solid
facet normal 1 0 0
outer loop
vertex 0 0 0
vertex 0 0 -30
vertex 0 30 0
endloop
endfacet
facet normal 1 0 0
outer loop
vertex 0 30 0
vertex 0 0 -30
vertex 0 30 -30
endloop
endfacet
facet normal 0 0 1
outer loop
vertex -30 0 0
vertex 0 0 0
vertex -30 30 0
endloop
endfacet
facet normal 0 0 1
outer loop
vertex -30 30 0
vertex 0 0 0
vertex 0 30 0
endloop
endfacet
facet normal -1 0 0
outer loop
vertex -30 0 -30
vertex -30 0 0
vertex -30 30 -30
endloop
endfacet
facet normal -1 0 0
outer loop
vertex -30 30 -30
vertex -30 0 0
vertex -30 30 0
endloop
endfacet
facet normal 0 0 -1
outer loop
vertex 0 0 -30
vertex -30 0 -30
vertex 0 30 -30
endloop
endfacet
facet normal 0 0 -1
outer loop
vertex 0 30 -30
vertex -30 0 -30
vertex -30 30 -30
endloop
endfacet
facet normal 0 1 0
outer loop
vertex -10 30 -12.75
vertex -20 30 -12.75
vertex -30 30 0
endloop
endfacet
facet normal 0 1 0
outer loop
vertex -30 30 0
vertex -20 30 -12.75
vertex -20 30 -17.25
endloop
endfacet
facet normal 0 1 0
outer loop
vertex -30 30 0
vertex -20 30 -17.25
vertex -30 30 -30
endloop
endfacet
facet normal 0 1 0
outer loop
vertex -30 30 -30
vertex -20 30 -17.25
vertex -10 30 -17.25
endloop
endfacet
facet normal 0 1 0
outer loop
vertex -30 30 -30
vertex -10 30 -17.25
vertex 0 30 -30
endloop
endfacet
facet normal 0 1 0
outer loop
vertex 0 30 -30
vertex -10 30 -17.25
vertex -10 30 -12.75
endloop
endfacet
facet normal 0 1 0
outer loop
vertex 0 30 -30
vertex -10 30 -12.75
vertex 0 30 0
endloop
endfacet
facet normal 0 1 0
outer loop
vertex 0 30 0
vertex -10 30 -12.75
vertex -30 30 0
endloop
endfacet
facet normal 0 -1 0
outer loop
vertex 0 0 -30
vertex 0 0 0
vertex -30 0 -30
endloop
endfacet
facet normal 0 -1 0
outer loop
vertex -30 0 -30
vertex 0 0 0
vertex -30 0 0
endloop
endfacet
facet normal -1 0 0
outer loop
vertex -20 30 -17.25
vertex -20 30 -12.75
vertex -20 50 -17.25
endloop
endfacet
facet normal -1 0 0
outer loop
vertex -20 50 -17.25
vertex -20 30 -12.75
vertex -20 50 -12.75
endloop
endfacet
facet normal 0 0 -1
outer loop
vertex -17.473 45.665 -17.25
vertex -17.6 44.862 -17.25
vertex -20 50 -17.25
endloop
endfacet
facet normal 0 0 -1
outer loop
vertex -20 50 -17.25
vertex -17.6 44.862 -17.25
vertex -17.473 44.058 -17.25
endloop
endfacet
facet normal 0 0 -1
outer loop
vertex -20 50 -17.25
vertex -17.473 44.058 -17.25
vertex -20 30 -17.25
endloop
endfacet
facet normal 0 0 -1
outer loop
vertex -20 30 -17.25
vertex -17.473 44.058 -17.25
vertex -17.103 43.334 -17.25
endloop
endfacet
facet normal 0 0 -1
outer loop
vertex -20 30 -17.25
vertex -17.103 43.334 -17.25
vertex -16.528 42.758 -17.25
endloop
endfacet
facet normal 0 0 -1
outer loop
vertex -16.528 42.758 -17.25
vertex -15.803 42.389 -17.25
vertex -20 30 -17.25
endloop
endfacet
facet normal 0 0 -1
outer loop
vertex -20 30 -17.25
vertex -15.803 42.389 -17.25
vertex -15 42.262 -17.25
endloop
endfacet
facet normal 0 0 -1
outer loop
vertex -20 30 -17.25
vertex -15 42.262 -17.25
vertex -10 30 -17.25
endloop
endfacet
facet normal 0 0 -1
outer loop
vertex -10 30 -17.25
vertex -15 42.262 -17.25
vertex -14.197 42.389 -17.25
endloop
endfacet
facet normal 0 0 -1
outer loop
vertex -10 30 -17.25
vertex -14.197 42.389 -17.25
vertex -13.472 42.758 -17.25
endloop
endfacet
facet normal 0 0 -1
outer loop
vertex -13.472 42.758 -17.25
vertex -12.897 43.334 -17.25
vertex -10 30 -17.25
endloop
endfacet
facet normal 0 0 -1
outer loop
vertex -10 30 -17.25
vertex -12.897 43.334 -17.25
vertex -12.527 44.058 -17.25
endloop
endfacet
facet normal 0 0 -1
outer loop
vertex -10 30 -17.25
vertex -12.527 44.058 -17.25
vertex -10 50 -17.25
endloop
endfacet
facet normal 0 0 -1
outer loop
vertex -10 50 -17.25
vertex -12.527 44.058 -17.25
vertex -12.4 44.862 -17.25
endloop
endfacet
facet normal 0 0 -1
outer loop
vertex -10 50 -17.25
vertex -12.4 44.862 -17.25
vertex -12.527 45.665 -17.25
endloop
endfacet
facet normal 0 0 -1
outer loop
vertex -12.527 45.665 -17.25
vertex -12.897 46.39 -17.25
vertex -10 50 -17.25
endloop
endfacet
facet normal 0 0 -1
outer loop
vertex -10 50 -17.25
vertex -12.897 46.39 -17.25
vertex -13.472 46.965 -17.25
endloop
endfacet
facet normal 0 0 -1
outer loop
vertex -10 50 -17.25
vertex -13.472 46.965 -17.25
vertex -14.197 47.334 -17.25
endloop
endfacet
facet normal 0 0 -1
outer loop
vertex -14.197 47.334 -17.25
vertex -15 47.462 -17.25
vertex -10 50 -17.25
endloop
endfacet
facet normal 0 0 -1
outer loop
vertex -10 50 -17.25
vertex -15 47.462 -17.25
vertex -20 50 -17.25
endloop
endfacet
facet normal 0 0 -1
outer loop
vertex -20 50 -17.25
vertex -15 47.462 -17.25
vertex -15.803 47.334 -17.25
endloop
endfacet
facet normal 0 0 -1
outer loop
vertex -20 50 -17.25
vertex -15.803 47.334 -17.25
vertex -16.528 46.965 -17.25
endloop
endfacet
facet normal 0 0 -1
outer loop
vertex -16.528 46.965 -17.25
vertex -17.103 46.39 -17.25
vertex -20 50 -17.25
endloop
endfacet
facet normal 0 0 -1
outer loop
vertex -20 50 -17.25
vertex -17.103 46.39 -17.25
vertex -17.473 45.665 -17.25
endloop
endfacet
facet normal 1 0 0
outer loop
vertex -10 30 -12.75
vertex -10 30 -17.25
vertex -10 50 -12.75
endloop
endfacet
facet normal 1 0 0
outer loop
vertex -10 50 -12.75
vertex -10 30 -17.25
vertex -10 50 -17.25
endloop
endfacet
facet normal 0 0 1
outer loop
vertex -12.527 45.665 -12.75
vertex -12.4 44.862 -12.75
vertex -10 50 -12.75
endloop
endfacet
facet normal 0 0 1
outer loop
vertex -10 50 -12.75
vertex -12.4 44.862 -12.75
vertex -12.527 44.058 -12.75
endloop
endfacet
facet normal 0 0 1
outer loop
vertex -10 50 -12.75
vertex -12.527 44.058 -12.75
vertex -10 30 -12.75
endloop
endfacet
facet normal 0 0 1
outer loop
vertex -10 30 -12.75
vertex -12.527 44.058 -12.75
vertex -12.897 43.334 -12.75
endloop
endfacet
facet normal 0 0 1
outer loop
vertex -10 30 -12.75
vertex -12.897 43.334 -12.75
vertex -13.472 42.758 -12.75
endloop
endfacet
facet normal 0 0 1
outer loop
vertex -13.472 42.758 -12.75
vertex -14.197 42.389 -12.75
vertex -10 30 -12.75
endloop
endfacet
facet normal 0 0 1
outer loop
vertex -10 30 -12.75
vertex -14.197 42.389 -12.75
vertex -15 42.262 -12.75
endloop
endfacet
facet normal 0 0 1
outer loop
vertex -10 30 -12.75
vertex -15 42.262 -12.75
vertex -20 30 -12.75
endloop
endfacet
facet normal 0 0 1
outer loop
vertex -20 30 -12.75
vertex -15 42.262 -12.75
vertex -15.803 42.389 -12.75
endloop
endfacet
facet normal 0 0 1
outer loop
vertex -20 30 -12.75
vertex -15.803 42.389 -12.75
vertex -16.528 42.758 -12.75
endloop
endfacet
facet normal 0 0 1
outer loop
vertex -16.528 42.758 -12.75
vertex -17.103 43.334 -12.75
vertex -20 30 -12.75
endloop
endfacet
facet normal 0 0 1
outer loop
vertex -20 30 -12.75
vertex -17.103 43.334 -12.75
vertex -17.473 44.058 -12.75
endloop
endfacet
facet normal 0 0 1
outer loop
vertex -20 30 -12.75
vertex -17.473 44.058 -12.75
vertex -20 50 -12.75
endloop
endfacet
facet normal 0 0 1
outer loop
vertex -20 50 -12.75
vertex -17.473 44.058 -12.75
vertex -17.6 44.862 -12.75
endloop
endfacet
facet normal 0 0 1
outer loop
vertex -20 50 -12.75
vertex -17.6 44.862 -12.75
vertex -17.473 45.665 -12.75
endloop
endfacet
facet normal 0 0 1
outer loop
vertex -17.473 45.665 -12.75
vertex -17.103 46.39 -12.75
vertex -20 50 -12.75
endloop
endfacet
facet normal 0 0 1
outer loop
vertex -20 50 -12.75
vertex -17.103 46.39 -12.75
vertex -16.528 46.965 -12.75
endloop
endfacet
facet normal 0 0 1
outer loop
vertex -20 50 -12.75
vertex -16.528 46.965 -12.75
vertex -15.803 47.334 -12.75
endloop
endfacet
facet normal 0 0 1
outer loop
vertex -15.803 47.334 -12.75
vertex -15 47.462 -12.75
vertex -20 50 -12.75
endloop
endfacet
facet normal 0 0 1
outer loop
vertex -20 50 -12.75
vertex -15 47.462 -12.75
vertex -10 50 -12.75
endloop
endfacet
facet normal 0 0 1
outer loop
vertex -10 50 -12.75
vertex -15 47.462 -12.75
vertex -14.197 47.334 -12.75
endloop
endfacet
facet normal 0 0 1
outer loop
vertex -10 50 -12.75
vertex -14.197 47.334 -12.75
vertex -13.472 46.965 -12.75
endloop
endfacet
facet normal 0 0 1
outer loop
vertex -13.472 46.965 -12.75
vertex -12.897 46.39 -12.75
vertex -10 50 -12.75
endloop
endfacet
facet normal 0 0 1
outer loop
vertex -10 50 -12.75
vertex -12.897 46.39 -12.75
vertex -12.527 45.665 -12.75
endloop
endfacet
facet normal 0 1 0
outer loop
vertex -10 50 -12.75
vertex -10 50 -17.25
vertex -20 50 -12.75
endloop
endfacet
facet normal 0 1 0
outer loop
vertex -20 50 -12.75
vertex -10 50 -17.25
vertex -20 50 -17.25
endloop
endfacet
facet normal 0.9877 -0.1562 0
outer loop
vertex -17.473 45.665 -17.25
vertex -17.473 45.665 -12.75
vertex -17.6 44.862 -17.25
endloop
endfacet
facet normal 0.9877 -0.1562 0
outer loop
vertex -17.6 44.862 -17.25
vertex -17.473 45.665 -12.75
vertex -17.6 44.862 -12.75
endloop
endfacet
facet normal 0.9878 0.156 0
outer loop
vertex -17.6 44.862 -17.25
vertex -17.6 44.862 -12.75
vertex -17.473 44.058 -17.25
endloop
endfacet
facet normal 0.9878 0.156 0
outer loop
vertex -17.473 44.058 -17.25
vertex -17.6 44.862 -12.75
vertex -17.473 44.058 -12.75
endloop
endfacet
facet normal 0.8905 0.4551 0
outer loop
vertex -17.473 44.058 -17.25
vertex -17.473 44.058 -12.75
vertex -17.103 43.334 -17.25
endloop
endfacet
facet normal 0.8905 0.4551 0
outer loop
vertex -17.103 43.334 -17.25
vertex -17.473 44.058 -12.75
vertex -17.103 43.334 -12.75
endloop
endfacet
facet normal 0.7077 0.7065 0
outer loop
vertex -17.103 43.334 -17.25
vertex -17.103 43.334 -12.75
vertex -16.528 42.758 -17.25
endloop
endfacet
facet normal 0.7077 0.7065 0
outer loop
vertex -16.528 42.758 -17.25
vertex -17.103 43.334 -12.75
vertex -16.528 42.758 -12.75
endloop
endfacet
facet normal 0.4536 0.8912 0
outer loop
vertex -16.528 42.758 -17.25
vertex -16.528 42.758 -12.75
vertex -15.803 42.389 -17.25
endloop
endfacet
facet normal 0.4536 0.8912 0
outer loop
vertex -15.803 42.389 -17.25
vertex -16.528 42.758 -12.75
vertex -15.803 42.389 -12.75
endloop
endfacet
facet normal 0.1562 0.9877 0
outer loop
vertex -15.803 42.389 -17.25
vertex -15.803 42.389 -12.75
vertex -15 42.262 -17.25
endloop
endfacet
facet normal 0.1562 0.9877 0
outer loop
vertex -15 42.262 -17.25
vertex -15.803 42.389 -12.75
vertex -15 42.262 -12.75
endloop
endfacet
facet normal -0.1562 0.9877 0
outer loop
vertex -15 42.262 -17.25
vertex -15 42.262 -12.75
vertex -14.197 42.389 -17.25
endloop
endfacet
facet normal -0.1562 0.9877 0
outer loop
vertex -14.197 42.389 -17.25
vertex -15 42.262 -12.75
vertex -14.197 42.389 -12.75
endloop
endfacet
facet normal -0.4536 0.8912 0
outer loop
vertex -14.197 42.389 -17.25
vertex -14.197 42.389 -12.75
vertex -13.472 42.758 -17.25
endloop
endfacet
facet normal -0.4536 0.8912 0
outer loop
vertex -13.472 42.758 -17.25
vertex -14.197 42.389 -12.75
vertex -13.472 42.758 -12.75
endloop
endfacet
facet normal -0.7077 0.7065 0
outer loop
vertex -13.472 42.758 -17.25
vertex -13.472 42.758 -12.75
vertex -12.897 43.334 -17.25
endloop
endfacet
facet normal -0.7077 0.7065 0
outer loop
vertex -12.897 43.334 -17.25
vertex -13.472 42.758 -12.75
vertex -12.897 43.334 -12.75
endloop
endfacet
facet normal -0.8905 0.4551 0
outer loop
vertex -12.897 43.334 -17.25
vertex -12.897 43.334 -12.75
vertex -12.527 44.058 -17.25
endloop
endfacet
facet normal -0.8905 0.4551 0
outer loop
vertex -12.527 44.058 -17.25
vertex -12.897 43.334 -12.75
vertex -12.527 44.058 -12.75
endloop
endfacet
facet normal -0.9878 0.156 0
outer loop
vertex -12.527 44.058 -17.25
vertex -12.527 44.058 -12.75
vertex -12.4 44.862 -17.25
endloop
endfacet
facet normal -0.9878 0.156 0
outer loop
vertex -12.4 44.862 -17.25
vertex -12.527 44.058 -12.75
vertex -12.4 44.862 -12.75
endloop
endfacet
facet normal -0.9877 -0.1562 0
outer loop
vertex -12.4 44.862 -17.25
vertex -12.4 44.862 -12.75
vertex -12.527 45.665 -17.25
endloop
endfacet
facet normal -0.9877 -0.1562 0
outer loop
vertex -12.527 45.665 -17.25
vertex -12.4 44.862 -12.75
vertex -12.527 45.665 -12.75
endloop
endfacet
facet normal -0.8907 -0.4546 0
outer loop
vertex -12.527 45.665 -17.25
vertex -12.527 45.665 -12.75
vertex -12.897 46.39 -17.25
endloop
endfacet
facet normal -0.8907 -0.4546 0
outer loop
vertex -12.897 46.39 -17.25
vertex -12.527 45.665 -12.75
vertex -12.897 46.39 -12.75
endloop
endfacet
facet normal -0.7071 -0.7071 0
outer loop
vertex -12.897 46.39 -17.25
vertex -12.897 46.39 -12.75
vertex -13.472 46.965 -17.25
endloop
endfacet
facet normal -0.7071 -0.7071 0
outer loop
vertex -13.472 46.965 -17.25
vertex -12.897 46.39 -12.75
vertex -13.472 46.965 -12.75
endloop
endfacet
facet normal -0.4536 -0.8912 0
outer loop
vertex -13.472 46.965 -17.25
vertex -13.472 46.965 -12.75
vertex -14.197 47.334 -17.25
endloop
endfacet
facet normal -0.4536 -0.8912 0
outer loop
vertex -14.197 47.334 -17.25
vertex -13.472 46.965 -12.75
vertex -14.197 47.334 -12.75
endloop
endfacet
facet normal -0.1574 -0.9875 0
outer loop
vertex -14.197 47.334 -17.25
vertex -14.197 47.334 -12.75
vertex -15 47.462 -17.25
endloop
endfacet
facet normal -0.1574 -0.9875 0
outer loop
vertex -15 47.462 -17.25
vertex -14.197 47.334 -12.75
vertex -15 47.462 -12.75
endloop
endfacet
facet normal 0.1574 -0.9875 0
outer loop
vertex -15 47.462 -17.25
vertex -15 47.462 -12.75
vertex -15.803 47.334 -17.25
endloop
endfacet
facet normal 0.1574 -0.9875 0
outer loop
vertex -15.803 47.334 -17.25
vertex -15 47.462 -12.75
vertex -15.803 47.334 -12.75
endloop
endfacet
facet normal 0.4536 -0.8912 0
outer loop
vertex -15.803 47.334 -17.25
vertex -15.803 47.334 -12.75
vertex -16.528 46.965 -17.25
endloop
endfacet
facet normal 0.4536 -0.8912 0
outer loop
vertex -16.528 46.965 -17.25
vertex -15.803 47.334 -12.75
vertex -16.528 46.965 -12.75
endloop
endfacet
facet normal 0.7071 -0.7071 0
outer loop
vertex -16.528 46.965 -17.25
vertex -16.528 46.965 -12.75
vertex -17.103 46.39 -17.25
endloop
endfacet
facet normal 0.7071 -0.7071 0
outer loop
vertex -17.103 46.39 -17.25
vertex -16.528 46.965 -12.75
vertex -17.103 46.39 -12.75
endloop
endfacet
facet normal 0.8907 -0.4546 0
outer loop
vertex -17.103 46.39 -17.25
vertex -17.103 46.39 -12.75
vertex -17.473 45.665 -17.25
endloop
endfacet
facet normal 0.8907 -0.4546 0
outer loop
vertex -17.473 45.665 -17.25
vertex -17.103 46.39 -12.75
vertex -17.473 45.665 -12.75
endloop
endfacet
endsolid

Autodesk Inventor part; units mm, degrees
ref_plane "YZ Plane" through (0, 0, 0) normal (1, 0, 0) x (0, 1, 0)
ref_plane "XZ Plane" through (0, 0, 0) normal (0, 1, 0) x (-1, 0, 0)
ref_plane "XY Plane" through (0, 0, 0) normal (0, 0, 1) x (1, 0, 0)
sketch "Sketch1" plane through (0, 0, 0) normal (0, 1, 0) x (-1, 0, 0)
  line L0 (0, 0) -> (30, 0)
  line L1 (30, 0) -> (30, -30)
  line L2 (30, -30) -> (0, -30)
  line L3 (0, -30) -> (0, 0)
  dimension "d0" = 30
  dimension "d1" = 30
extrude "Extrusion1" add sketch "Sketch1" along normal blind 30
sketch "Sketch2" plane through (0, 30, 0) normal (0, 1, 0) x (1, 0, 0)
  line L0 (-20, 17.25) -> (-10, 17.25)
  line L1 (-10, 17.25) -> (-10, 12.75)
  line L2 (-10, 12.75) -> (-20, 12.75)
  line L3 (-20, 12.75) -> (-20, 17.25)
  line L4 (-20, 17.25) -> (-10, 12.75) construction
  line L5 (-10, 17.25) -> (-20, 12.75) construction
  line L6 (-30, 30) -> (-30, 0) projected
  line L7 (-30, 0) -> (0, 0) projected
  point P0 (-15, 15)
  point P1 (-30, 15)
  dimension "d4" = 15
  dimension "d5" = 15
  dimension "d6" = 10
  dimension "d7" = 4.5
extrude "Extrusion2" add sketch "Sketch2" along normal blind 20
sketch "Sketch3" plane through (-20, 30, -12.75) normal (0, 0, 1) x (1, 0, 0)
  circle A0 centre (5, 14.8617) radius 2.6
  point P0 (20, -30)
  dimension "d10" = 5.2
extrude "Extrusion3" cut sketch "Sketch3" against normal blind 20
properties part number "ObjectCube"
